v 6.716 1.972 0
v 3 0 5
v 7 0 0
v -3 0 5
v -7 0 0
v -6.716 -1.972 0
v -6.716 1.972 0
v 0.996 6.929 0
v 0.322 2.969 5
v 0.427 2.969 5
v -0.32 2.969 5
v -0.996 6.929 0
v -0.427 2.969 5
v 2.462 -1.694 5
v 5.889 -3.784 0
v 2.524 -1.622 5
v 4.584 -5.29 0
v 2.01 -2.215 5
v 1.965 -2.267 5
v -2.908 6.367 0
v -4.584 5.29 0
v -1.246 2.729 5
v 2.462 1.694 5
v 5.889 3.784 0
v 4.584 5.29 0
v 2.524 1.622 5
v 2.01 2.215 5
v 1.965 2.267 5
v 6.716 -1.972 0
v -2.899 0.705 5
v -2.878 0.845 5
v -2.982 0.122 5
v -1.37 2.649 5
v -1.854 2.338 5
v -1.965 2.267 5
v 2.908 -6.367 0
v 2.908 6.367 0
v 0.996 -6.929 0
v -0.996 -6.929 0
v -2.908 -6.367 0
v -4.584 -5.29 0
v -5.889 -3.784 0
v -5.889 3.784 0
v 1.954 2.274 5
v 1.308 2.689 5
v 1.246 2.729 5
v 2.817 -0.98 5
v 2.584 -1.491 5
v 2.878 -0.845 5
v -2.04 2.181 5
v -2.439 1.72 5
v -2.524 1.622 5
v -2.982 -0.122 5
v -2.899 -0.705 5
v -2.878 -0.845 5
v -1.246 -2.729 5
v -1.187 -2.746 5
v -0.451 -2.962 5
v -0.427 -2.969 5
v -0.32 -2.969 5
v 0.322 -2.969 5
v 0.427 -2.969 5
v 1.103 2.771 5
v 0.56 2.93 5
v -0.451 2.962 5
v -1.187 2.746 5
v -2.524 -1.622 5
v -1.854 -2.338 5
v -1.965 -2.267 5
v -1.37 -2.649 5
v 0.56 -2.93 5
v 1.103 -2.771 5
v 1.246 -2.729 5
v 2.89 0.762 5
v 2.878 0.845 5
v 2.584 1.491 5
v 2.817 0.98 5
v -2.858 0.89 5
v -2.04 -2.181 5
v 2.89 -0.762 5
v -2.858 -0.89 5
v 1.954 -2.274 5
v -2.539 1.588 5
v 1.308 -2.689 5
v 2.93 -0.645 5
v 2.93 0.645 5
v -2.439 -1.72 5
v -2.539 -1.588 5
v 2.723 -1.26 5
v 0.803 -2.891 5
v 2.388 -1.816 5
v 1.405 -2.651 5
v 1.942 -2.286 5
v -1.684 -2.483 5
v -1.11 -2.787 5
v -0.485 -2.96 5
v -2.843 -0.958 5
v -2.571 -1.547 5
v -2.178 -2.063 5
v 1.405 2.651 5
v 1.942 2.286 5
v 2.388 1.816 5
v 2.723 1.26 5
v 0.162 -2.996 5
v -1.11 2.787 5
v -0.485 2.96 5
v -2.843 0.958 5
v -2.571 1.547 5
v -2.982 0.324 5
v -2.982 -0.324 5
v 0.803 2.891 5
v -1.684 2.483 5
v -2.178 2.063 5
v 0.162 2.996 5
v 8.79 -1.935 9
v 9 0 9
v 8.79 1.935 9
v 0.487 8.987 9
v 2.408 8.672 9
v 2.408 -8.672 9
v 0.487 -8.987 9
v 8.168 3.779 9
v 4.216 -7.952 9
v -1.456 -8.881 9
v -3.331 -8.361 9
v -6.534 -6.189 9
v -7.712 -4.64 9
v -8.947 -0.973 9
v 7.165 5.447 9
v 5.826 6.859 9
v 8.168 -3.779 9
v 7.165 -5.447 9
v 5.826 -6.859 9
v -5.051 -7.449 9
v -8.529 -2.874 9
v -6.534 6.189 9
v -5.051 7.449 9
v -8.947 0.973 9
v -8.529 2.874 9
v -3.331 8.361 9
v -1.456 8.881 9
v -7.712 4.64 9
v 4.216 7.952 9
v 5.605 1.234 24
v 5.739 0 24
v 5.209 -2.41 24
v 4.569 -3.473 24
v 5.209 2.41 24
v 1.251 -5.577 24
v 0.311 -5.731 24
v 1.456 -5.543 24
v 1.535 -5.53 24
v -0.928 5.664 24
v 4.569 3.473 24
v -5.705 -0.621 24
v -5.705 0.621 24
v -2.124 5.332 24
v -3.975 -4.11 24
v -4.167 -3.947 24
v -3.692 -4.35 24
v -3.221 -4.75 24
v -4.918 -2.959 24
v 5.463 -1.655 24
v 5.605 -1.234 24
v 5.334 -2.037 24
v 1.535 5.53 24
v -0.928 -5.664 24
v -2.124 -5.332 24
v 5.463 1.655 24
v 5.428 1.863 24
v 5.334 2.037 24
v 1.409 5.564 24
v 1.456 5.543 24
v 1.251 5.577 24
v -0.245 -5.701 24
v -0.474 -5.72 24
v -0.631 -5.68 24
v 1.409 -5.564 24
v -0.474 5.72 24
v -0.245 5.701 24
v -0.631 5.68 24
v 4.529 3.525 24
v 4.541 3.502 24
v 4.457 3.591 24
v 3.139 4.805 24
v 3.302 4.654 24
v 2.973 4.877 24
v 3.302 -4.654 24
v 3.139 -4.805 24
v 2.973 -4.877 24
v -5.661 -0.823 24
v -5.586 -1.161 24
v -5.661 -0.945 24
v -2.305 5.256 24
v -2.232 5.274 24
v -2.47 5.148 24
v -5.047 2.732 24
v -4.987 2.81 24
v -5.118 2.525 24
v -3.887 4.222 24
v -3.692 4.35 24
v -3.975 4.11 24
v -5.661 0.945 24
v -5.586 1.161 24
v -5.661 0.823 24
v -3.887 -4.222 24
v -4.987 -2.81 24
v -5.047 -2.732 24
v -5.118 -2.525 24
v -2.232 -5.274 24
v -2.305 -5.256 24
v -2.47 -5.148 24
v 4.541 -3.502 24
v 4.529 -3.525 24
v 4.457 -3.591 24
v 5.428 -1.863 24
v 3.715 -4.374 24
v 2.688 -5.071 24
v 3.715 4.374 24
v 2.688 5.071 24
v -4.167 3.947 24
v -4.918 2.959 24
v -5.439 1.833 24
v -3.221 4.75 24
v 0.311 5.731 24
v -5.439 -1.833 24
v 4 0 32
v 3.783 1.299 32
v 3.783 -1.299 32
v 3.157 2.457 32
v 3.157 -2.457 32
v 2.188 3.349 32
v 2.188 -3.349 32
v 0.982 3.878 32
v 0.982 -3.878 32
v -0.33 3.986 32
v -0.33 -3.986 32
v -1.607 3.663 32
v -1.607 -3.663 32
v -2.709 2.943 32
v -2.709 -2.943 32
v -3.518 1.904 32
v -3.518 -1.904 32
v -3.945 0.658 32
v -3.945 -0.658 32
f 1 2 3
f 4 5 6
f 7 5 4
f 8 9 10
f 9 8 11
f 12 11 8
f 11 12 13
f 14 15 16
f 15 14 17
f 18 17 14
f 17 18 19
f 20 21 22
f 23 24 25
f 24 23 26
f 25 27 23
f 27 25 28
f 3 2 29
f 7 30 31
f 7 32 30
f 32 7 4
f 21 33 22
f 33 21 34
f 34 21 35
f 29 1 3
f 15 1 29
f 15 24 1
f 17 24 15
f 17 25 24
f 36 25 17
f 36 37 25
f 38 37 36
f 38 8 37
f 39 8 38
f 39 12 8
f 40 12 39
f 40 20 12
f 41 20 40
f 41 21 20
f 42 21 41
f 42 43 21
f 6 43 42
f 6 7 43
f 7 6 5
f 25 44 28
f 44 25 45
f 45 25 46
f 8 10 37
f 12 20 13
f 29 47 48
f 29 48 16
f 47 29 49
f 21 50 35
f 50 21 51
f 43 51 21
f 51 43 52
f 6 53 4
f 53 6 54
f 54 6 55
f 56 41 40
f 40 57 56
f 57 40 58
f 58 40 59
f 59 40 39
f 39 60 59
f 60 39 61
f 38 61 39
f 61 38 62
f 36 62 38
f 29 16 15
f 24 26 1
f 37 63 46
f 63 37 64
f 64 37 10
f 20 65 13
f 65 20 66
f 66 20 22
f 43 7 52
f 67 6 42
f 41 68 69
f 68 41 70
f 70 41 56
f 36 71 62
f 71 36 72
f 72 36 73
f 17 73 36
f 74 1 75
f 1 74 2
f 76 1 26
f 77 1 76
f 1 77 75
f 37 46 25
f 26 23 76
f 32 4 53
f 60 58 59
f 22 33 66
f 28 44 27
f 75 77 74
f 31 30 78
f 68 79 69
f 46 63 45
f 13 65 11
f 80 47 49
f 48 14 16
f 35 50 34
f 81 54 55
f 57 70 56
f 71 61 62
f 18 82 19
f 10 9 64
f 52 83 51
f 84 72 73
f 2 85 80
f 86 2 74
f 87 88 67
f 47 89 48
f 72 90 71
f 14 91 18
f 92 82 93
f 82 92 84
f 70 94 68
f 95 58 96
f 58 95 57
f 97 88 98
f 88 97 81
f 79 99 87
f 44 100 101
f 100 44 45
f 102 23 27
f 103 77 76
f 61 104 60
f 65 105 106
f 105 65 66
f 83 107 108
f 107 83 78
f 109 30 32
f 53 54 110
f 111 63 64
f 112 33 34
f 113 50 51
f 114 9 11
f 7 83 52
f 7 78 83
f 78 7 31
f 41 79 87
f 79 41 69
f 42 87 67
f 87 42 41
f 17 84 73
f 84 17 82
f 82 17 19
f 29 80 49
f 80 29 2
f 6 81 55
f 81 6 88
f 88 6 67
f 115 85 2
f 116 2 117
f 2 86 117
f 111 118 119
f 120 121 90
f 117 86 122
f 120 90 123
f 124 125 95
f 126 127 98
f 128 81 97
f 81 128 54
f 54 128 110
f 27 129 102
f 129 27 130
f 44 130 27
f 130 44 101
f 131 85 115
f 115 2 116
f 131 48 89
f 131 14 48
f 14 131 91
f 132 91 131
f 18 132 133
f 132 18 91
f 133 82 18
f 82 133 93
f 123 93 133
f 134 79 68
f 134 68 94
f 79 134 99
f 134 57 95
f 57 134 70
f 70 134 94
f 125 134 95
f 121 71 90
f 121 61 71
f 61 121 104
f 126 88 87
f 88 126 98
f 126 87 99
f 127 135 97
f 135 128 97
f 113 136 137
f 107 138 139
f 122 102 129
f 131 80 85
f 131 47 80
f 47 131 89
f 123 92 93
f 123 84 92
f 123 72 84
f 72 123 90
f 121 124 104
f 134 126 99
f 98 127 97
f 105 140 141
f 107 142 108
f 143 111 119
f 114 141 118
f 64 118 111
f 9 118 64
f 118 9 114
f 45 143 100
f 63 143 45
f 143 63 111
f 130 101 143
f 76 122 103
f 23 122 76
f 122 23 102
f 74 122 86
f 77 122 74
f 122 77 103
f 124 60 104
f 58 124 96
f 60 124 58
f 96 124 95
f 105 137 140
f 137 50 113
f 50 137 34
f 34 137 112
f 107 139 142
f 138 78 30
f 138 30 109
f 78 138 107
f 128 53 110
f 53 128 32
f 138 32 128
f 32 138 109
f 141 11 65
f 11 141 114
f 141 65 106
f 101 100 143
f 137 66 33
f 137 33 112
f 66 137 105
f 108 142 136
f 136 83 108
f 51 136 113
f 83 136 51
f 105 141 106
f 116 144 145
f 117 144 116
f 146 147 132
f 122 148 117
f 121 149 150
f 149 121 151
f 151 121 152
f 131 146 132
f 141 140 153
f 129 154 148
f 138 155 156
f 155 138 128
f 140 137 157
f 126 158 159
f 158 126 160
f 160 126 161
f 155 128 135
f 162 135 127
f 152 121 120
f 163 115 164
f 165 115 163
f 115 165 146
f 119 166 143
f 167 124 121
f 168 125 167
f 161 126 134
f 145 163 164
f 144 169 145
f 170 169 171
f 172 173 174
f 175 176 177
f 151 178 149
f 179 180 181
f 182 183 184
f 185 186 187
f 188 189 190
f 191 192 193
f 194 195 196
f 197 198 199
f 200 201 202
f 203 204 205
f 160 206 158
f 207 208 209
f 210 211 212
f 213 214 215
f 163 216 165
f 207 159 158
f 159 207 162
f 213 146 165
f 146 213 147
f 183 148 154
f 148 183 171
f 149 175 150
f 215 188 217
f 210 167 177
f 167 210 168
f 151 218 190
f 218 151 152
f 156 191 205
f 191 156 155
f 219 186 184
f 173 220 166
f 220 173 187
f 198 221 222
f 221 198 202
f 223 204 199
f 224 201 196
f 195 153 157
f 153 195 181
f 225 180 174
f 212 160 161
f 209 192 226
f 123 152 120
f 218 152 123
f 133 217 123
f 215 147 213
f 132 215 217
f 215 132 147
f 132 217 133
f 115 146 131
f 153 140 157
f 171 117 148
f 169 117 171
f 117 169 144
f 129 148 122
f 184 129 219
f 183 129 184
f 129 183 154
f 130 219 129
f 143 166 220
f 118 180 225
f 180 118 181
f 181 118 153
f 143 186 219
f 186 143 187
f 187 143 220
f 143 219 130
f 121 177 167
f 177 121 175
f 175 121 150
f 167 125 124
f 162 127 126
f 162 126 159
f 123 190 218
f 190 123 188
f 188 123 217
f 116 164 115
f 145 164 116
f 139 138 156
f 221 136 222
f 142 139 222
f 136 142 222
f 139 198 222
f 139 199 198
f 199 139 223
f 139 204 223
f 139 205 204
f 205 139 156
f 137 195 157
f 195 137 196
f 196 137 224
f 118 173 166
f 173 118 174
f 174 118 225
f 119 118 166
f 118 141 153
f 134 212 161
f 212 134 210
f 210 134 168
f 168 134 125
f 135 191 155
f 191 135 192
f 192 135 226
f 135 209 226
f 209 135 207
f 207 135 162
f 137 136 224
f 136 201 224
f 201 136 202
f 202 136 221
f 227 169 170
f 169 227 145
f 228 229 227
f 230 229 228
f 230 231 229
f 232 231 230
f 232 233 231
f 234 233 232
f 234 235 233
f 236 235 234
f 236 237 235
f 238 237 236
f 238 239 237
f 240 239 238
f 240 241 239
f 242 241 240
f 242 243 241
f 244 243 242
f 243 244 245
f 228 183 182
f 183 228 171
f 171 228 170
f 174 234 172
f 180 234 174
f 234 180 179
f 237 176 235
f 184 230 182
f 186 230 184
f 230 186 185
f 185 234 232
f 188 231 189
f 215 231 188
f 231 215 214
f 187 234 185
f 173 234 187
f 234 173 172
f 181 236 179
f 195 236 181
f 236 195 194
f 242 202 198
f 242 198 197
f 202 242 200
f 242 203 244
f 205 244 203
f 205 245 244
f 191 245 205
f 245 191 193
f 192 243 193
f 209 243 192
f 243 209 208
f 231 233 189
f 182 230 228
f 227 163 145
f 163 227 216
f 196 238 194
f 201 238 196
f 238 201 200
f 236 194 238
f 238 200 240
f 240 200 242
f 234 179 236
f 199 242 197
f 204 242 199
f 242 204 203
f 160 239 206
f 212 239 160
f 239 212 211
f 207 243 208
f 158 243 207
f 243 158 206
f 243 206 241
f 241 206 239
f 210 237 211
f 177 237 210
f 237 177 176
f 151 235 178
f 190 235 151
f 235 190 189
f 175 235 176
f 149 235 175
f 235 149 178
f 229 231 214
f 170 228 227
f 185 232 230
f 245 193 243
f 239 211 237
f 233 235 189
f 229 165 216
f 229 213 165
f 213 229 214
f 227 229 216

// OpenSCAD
module lamp(r_top, r_lamp, r_middle, r_base, h_top, h_lamp, h_base_top, h_base_bottom) {
    
    // Poprawiona formuła r_upper_lamp
    r_upper_lamp = r_top+(((r_lamp - r_top)*h_top) / (h_lamp + h_top));
    
    // Podstawa
    cylinder(h_base_bottom, r1=r_base, r2=r_middle);

    // Górna część podstawy
    translate([0,0,h_base_bottom])
    cylinder(h_base_top, r1=r_middle, r2=r_lamp);

    // Główna część lampy
    translate([0,0,h_base_bottom + h_base_top])
    cylinder(h_lamp, r1=r_lamp, r2=r_upper_lamp);

    // Górna część lampy
    translate([0,0,h_base_bottom + h_base_top + h_lamp])
    cylinder(h_top, r1=r_upper_lamp, r2=r_top);
}

lamp(
    r_top = 4,
    r_lamp = 9,
    r_middle = 3,
    r_base = 7,
    h_top = 8,
    h_lamp = 15,
    h_base_top = 4,
    h_base_bottom = 5
);
